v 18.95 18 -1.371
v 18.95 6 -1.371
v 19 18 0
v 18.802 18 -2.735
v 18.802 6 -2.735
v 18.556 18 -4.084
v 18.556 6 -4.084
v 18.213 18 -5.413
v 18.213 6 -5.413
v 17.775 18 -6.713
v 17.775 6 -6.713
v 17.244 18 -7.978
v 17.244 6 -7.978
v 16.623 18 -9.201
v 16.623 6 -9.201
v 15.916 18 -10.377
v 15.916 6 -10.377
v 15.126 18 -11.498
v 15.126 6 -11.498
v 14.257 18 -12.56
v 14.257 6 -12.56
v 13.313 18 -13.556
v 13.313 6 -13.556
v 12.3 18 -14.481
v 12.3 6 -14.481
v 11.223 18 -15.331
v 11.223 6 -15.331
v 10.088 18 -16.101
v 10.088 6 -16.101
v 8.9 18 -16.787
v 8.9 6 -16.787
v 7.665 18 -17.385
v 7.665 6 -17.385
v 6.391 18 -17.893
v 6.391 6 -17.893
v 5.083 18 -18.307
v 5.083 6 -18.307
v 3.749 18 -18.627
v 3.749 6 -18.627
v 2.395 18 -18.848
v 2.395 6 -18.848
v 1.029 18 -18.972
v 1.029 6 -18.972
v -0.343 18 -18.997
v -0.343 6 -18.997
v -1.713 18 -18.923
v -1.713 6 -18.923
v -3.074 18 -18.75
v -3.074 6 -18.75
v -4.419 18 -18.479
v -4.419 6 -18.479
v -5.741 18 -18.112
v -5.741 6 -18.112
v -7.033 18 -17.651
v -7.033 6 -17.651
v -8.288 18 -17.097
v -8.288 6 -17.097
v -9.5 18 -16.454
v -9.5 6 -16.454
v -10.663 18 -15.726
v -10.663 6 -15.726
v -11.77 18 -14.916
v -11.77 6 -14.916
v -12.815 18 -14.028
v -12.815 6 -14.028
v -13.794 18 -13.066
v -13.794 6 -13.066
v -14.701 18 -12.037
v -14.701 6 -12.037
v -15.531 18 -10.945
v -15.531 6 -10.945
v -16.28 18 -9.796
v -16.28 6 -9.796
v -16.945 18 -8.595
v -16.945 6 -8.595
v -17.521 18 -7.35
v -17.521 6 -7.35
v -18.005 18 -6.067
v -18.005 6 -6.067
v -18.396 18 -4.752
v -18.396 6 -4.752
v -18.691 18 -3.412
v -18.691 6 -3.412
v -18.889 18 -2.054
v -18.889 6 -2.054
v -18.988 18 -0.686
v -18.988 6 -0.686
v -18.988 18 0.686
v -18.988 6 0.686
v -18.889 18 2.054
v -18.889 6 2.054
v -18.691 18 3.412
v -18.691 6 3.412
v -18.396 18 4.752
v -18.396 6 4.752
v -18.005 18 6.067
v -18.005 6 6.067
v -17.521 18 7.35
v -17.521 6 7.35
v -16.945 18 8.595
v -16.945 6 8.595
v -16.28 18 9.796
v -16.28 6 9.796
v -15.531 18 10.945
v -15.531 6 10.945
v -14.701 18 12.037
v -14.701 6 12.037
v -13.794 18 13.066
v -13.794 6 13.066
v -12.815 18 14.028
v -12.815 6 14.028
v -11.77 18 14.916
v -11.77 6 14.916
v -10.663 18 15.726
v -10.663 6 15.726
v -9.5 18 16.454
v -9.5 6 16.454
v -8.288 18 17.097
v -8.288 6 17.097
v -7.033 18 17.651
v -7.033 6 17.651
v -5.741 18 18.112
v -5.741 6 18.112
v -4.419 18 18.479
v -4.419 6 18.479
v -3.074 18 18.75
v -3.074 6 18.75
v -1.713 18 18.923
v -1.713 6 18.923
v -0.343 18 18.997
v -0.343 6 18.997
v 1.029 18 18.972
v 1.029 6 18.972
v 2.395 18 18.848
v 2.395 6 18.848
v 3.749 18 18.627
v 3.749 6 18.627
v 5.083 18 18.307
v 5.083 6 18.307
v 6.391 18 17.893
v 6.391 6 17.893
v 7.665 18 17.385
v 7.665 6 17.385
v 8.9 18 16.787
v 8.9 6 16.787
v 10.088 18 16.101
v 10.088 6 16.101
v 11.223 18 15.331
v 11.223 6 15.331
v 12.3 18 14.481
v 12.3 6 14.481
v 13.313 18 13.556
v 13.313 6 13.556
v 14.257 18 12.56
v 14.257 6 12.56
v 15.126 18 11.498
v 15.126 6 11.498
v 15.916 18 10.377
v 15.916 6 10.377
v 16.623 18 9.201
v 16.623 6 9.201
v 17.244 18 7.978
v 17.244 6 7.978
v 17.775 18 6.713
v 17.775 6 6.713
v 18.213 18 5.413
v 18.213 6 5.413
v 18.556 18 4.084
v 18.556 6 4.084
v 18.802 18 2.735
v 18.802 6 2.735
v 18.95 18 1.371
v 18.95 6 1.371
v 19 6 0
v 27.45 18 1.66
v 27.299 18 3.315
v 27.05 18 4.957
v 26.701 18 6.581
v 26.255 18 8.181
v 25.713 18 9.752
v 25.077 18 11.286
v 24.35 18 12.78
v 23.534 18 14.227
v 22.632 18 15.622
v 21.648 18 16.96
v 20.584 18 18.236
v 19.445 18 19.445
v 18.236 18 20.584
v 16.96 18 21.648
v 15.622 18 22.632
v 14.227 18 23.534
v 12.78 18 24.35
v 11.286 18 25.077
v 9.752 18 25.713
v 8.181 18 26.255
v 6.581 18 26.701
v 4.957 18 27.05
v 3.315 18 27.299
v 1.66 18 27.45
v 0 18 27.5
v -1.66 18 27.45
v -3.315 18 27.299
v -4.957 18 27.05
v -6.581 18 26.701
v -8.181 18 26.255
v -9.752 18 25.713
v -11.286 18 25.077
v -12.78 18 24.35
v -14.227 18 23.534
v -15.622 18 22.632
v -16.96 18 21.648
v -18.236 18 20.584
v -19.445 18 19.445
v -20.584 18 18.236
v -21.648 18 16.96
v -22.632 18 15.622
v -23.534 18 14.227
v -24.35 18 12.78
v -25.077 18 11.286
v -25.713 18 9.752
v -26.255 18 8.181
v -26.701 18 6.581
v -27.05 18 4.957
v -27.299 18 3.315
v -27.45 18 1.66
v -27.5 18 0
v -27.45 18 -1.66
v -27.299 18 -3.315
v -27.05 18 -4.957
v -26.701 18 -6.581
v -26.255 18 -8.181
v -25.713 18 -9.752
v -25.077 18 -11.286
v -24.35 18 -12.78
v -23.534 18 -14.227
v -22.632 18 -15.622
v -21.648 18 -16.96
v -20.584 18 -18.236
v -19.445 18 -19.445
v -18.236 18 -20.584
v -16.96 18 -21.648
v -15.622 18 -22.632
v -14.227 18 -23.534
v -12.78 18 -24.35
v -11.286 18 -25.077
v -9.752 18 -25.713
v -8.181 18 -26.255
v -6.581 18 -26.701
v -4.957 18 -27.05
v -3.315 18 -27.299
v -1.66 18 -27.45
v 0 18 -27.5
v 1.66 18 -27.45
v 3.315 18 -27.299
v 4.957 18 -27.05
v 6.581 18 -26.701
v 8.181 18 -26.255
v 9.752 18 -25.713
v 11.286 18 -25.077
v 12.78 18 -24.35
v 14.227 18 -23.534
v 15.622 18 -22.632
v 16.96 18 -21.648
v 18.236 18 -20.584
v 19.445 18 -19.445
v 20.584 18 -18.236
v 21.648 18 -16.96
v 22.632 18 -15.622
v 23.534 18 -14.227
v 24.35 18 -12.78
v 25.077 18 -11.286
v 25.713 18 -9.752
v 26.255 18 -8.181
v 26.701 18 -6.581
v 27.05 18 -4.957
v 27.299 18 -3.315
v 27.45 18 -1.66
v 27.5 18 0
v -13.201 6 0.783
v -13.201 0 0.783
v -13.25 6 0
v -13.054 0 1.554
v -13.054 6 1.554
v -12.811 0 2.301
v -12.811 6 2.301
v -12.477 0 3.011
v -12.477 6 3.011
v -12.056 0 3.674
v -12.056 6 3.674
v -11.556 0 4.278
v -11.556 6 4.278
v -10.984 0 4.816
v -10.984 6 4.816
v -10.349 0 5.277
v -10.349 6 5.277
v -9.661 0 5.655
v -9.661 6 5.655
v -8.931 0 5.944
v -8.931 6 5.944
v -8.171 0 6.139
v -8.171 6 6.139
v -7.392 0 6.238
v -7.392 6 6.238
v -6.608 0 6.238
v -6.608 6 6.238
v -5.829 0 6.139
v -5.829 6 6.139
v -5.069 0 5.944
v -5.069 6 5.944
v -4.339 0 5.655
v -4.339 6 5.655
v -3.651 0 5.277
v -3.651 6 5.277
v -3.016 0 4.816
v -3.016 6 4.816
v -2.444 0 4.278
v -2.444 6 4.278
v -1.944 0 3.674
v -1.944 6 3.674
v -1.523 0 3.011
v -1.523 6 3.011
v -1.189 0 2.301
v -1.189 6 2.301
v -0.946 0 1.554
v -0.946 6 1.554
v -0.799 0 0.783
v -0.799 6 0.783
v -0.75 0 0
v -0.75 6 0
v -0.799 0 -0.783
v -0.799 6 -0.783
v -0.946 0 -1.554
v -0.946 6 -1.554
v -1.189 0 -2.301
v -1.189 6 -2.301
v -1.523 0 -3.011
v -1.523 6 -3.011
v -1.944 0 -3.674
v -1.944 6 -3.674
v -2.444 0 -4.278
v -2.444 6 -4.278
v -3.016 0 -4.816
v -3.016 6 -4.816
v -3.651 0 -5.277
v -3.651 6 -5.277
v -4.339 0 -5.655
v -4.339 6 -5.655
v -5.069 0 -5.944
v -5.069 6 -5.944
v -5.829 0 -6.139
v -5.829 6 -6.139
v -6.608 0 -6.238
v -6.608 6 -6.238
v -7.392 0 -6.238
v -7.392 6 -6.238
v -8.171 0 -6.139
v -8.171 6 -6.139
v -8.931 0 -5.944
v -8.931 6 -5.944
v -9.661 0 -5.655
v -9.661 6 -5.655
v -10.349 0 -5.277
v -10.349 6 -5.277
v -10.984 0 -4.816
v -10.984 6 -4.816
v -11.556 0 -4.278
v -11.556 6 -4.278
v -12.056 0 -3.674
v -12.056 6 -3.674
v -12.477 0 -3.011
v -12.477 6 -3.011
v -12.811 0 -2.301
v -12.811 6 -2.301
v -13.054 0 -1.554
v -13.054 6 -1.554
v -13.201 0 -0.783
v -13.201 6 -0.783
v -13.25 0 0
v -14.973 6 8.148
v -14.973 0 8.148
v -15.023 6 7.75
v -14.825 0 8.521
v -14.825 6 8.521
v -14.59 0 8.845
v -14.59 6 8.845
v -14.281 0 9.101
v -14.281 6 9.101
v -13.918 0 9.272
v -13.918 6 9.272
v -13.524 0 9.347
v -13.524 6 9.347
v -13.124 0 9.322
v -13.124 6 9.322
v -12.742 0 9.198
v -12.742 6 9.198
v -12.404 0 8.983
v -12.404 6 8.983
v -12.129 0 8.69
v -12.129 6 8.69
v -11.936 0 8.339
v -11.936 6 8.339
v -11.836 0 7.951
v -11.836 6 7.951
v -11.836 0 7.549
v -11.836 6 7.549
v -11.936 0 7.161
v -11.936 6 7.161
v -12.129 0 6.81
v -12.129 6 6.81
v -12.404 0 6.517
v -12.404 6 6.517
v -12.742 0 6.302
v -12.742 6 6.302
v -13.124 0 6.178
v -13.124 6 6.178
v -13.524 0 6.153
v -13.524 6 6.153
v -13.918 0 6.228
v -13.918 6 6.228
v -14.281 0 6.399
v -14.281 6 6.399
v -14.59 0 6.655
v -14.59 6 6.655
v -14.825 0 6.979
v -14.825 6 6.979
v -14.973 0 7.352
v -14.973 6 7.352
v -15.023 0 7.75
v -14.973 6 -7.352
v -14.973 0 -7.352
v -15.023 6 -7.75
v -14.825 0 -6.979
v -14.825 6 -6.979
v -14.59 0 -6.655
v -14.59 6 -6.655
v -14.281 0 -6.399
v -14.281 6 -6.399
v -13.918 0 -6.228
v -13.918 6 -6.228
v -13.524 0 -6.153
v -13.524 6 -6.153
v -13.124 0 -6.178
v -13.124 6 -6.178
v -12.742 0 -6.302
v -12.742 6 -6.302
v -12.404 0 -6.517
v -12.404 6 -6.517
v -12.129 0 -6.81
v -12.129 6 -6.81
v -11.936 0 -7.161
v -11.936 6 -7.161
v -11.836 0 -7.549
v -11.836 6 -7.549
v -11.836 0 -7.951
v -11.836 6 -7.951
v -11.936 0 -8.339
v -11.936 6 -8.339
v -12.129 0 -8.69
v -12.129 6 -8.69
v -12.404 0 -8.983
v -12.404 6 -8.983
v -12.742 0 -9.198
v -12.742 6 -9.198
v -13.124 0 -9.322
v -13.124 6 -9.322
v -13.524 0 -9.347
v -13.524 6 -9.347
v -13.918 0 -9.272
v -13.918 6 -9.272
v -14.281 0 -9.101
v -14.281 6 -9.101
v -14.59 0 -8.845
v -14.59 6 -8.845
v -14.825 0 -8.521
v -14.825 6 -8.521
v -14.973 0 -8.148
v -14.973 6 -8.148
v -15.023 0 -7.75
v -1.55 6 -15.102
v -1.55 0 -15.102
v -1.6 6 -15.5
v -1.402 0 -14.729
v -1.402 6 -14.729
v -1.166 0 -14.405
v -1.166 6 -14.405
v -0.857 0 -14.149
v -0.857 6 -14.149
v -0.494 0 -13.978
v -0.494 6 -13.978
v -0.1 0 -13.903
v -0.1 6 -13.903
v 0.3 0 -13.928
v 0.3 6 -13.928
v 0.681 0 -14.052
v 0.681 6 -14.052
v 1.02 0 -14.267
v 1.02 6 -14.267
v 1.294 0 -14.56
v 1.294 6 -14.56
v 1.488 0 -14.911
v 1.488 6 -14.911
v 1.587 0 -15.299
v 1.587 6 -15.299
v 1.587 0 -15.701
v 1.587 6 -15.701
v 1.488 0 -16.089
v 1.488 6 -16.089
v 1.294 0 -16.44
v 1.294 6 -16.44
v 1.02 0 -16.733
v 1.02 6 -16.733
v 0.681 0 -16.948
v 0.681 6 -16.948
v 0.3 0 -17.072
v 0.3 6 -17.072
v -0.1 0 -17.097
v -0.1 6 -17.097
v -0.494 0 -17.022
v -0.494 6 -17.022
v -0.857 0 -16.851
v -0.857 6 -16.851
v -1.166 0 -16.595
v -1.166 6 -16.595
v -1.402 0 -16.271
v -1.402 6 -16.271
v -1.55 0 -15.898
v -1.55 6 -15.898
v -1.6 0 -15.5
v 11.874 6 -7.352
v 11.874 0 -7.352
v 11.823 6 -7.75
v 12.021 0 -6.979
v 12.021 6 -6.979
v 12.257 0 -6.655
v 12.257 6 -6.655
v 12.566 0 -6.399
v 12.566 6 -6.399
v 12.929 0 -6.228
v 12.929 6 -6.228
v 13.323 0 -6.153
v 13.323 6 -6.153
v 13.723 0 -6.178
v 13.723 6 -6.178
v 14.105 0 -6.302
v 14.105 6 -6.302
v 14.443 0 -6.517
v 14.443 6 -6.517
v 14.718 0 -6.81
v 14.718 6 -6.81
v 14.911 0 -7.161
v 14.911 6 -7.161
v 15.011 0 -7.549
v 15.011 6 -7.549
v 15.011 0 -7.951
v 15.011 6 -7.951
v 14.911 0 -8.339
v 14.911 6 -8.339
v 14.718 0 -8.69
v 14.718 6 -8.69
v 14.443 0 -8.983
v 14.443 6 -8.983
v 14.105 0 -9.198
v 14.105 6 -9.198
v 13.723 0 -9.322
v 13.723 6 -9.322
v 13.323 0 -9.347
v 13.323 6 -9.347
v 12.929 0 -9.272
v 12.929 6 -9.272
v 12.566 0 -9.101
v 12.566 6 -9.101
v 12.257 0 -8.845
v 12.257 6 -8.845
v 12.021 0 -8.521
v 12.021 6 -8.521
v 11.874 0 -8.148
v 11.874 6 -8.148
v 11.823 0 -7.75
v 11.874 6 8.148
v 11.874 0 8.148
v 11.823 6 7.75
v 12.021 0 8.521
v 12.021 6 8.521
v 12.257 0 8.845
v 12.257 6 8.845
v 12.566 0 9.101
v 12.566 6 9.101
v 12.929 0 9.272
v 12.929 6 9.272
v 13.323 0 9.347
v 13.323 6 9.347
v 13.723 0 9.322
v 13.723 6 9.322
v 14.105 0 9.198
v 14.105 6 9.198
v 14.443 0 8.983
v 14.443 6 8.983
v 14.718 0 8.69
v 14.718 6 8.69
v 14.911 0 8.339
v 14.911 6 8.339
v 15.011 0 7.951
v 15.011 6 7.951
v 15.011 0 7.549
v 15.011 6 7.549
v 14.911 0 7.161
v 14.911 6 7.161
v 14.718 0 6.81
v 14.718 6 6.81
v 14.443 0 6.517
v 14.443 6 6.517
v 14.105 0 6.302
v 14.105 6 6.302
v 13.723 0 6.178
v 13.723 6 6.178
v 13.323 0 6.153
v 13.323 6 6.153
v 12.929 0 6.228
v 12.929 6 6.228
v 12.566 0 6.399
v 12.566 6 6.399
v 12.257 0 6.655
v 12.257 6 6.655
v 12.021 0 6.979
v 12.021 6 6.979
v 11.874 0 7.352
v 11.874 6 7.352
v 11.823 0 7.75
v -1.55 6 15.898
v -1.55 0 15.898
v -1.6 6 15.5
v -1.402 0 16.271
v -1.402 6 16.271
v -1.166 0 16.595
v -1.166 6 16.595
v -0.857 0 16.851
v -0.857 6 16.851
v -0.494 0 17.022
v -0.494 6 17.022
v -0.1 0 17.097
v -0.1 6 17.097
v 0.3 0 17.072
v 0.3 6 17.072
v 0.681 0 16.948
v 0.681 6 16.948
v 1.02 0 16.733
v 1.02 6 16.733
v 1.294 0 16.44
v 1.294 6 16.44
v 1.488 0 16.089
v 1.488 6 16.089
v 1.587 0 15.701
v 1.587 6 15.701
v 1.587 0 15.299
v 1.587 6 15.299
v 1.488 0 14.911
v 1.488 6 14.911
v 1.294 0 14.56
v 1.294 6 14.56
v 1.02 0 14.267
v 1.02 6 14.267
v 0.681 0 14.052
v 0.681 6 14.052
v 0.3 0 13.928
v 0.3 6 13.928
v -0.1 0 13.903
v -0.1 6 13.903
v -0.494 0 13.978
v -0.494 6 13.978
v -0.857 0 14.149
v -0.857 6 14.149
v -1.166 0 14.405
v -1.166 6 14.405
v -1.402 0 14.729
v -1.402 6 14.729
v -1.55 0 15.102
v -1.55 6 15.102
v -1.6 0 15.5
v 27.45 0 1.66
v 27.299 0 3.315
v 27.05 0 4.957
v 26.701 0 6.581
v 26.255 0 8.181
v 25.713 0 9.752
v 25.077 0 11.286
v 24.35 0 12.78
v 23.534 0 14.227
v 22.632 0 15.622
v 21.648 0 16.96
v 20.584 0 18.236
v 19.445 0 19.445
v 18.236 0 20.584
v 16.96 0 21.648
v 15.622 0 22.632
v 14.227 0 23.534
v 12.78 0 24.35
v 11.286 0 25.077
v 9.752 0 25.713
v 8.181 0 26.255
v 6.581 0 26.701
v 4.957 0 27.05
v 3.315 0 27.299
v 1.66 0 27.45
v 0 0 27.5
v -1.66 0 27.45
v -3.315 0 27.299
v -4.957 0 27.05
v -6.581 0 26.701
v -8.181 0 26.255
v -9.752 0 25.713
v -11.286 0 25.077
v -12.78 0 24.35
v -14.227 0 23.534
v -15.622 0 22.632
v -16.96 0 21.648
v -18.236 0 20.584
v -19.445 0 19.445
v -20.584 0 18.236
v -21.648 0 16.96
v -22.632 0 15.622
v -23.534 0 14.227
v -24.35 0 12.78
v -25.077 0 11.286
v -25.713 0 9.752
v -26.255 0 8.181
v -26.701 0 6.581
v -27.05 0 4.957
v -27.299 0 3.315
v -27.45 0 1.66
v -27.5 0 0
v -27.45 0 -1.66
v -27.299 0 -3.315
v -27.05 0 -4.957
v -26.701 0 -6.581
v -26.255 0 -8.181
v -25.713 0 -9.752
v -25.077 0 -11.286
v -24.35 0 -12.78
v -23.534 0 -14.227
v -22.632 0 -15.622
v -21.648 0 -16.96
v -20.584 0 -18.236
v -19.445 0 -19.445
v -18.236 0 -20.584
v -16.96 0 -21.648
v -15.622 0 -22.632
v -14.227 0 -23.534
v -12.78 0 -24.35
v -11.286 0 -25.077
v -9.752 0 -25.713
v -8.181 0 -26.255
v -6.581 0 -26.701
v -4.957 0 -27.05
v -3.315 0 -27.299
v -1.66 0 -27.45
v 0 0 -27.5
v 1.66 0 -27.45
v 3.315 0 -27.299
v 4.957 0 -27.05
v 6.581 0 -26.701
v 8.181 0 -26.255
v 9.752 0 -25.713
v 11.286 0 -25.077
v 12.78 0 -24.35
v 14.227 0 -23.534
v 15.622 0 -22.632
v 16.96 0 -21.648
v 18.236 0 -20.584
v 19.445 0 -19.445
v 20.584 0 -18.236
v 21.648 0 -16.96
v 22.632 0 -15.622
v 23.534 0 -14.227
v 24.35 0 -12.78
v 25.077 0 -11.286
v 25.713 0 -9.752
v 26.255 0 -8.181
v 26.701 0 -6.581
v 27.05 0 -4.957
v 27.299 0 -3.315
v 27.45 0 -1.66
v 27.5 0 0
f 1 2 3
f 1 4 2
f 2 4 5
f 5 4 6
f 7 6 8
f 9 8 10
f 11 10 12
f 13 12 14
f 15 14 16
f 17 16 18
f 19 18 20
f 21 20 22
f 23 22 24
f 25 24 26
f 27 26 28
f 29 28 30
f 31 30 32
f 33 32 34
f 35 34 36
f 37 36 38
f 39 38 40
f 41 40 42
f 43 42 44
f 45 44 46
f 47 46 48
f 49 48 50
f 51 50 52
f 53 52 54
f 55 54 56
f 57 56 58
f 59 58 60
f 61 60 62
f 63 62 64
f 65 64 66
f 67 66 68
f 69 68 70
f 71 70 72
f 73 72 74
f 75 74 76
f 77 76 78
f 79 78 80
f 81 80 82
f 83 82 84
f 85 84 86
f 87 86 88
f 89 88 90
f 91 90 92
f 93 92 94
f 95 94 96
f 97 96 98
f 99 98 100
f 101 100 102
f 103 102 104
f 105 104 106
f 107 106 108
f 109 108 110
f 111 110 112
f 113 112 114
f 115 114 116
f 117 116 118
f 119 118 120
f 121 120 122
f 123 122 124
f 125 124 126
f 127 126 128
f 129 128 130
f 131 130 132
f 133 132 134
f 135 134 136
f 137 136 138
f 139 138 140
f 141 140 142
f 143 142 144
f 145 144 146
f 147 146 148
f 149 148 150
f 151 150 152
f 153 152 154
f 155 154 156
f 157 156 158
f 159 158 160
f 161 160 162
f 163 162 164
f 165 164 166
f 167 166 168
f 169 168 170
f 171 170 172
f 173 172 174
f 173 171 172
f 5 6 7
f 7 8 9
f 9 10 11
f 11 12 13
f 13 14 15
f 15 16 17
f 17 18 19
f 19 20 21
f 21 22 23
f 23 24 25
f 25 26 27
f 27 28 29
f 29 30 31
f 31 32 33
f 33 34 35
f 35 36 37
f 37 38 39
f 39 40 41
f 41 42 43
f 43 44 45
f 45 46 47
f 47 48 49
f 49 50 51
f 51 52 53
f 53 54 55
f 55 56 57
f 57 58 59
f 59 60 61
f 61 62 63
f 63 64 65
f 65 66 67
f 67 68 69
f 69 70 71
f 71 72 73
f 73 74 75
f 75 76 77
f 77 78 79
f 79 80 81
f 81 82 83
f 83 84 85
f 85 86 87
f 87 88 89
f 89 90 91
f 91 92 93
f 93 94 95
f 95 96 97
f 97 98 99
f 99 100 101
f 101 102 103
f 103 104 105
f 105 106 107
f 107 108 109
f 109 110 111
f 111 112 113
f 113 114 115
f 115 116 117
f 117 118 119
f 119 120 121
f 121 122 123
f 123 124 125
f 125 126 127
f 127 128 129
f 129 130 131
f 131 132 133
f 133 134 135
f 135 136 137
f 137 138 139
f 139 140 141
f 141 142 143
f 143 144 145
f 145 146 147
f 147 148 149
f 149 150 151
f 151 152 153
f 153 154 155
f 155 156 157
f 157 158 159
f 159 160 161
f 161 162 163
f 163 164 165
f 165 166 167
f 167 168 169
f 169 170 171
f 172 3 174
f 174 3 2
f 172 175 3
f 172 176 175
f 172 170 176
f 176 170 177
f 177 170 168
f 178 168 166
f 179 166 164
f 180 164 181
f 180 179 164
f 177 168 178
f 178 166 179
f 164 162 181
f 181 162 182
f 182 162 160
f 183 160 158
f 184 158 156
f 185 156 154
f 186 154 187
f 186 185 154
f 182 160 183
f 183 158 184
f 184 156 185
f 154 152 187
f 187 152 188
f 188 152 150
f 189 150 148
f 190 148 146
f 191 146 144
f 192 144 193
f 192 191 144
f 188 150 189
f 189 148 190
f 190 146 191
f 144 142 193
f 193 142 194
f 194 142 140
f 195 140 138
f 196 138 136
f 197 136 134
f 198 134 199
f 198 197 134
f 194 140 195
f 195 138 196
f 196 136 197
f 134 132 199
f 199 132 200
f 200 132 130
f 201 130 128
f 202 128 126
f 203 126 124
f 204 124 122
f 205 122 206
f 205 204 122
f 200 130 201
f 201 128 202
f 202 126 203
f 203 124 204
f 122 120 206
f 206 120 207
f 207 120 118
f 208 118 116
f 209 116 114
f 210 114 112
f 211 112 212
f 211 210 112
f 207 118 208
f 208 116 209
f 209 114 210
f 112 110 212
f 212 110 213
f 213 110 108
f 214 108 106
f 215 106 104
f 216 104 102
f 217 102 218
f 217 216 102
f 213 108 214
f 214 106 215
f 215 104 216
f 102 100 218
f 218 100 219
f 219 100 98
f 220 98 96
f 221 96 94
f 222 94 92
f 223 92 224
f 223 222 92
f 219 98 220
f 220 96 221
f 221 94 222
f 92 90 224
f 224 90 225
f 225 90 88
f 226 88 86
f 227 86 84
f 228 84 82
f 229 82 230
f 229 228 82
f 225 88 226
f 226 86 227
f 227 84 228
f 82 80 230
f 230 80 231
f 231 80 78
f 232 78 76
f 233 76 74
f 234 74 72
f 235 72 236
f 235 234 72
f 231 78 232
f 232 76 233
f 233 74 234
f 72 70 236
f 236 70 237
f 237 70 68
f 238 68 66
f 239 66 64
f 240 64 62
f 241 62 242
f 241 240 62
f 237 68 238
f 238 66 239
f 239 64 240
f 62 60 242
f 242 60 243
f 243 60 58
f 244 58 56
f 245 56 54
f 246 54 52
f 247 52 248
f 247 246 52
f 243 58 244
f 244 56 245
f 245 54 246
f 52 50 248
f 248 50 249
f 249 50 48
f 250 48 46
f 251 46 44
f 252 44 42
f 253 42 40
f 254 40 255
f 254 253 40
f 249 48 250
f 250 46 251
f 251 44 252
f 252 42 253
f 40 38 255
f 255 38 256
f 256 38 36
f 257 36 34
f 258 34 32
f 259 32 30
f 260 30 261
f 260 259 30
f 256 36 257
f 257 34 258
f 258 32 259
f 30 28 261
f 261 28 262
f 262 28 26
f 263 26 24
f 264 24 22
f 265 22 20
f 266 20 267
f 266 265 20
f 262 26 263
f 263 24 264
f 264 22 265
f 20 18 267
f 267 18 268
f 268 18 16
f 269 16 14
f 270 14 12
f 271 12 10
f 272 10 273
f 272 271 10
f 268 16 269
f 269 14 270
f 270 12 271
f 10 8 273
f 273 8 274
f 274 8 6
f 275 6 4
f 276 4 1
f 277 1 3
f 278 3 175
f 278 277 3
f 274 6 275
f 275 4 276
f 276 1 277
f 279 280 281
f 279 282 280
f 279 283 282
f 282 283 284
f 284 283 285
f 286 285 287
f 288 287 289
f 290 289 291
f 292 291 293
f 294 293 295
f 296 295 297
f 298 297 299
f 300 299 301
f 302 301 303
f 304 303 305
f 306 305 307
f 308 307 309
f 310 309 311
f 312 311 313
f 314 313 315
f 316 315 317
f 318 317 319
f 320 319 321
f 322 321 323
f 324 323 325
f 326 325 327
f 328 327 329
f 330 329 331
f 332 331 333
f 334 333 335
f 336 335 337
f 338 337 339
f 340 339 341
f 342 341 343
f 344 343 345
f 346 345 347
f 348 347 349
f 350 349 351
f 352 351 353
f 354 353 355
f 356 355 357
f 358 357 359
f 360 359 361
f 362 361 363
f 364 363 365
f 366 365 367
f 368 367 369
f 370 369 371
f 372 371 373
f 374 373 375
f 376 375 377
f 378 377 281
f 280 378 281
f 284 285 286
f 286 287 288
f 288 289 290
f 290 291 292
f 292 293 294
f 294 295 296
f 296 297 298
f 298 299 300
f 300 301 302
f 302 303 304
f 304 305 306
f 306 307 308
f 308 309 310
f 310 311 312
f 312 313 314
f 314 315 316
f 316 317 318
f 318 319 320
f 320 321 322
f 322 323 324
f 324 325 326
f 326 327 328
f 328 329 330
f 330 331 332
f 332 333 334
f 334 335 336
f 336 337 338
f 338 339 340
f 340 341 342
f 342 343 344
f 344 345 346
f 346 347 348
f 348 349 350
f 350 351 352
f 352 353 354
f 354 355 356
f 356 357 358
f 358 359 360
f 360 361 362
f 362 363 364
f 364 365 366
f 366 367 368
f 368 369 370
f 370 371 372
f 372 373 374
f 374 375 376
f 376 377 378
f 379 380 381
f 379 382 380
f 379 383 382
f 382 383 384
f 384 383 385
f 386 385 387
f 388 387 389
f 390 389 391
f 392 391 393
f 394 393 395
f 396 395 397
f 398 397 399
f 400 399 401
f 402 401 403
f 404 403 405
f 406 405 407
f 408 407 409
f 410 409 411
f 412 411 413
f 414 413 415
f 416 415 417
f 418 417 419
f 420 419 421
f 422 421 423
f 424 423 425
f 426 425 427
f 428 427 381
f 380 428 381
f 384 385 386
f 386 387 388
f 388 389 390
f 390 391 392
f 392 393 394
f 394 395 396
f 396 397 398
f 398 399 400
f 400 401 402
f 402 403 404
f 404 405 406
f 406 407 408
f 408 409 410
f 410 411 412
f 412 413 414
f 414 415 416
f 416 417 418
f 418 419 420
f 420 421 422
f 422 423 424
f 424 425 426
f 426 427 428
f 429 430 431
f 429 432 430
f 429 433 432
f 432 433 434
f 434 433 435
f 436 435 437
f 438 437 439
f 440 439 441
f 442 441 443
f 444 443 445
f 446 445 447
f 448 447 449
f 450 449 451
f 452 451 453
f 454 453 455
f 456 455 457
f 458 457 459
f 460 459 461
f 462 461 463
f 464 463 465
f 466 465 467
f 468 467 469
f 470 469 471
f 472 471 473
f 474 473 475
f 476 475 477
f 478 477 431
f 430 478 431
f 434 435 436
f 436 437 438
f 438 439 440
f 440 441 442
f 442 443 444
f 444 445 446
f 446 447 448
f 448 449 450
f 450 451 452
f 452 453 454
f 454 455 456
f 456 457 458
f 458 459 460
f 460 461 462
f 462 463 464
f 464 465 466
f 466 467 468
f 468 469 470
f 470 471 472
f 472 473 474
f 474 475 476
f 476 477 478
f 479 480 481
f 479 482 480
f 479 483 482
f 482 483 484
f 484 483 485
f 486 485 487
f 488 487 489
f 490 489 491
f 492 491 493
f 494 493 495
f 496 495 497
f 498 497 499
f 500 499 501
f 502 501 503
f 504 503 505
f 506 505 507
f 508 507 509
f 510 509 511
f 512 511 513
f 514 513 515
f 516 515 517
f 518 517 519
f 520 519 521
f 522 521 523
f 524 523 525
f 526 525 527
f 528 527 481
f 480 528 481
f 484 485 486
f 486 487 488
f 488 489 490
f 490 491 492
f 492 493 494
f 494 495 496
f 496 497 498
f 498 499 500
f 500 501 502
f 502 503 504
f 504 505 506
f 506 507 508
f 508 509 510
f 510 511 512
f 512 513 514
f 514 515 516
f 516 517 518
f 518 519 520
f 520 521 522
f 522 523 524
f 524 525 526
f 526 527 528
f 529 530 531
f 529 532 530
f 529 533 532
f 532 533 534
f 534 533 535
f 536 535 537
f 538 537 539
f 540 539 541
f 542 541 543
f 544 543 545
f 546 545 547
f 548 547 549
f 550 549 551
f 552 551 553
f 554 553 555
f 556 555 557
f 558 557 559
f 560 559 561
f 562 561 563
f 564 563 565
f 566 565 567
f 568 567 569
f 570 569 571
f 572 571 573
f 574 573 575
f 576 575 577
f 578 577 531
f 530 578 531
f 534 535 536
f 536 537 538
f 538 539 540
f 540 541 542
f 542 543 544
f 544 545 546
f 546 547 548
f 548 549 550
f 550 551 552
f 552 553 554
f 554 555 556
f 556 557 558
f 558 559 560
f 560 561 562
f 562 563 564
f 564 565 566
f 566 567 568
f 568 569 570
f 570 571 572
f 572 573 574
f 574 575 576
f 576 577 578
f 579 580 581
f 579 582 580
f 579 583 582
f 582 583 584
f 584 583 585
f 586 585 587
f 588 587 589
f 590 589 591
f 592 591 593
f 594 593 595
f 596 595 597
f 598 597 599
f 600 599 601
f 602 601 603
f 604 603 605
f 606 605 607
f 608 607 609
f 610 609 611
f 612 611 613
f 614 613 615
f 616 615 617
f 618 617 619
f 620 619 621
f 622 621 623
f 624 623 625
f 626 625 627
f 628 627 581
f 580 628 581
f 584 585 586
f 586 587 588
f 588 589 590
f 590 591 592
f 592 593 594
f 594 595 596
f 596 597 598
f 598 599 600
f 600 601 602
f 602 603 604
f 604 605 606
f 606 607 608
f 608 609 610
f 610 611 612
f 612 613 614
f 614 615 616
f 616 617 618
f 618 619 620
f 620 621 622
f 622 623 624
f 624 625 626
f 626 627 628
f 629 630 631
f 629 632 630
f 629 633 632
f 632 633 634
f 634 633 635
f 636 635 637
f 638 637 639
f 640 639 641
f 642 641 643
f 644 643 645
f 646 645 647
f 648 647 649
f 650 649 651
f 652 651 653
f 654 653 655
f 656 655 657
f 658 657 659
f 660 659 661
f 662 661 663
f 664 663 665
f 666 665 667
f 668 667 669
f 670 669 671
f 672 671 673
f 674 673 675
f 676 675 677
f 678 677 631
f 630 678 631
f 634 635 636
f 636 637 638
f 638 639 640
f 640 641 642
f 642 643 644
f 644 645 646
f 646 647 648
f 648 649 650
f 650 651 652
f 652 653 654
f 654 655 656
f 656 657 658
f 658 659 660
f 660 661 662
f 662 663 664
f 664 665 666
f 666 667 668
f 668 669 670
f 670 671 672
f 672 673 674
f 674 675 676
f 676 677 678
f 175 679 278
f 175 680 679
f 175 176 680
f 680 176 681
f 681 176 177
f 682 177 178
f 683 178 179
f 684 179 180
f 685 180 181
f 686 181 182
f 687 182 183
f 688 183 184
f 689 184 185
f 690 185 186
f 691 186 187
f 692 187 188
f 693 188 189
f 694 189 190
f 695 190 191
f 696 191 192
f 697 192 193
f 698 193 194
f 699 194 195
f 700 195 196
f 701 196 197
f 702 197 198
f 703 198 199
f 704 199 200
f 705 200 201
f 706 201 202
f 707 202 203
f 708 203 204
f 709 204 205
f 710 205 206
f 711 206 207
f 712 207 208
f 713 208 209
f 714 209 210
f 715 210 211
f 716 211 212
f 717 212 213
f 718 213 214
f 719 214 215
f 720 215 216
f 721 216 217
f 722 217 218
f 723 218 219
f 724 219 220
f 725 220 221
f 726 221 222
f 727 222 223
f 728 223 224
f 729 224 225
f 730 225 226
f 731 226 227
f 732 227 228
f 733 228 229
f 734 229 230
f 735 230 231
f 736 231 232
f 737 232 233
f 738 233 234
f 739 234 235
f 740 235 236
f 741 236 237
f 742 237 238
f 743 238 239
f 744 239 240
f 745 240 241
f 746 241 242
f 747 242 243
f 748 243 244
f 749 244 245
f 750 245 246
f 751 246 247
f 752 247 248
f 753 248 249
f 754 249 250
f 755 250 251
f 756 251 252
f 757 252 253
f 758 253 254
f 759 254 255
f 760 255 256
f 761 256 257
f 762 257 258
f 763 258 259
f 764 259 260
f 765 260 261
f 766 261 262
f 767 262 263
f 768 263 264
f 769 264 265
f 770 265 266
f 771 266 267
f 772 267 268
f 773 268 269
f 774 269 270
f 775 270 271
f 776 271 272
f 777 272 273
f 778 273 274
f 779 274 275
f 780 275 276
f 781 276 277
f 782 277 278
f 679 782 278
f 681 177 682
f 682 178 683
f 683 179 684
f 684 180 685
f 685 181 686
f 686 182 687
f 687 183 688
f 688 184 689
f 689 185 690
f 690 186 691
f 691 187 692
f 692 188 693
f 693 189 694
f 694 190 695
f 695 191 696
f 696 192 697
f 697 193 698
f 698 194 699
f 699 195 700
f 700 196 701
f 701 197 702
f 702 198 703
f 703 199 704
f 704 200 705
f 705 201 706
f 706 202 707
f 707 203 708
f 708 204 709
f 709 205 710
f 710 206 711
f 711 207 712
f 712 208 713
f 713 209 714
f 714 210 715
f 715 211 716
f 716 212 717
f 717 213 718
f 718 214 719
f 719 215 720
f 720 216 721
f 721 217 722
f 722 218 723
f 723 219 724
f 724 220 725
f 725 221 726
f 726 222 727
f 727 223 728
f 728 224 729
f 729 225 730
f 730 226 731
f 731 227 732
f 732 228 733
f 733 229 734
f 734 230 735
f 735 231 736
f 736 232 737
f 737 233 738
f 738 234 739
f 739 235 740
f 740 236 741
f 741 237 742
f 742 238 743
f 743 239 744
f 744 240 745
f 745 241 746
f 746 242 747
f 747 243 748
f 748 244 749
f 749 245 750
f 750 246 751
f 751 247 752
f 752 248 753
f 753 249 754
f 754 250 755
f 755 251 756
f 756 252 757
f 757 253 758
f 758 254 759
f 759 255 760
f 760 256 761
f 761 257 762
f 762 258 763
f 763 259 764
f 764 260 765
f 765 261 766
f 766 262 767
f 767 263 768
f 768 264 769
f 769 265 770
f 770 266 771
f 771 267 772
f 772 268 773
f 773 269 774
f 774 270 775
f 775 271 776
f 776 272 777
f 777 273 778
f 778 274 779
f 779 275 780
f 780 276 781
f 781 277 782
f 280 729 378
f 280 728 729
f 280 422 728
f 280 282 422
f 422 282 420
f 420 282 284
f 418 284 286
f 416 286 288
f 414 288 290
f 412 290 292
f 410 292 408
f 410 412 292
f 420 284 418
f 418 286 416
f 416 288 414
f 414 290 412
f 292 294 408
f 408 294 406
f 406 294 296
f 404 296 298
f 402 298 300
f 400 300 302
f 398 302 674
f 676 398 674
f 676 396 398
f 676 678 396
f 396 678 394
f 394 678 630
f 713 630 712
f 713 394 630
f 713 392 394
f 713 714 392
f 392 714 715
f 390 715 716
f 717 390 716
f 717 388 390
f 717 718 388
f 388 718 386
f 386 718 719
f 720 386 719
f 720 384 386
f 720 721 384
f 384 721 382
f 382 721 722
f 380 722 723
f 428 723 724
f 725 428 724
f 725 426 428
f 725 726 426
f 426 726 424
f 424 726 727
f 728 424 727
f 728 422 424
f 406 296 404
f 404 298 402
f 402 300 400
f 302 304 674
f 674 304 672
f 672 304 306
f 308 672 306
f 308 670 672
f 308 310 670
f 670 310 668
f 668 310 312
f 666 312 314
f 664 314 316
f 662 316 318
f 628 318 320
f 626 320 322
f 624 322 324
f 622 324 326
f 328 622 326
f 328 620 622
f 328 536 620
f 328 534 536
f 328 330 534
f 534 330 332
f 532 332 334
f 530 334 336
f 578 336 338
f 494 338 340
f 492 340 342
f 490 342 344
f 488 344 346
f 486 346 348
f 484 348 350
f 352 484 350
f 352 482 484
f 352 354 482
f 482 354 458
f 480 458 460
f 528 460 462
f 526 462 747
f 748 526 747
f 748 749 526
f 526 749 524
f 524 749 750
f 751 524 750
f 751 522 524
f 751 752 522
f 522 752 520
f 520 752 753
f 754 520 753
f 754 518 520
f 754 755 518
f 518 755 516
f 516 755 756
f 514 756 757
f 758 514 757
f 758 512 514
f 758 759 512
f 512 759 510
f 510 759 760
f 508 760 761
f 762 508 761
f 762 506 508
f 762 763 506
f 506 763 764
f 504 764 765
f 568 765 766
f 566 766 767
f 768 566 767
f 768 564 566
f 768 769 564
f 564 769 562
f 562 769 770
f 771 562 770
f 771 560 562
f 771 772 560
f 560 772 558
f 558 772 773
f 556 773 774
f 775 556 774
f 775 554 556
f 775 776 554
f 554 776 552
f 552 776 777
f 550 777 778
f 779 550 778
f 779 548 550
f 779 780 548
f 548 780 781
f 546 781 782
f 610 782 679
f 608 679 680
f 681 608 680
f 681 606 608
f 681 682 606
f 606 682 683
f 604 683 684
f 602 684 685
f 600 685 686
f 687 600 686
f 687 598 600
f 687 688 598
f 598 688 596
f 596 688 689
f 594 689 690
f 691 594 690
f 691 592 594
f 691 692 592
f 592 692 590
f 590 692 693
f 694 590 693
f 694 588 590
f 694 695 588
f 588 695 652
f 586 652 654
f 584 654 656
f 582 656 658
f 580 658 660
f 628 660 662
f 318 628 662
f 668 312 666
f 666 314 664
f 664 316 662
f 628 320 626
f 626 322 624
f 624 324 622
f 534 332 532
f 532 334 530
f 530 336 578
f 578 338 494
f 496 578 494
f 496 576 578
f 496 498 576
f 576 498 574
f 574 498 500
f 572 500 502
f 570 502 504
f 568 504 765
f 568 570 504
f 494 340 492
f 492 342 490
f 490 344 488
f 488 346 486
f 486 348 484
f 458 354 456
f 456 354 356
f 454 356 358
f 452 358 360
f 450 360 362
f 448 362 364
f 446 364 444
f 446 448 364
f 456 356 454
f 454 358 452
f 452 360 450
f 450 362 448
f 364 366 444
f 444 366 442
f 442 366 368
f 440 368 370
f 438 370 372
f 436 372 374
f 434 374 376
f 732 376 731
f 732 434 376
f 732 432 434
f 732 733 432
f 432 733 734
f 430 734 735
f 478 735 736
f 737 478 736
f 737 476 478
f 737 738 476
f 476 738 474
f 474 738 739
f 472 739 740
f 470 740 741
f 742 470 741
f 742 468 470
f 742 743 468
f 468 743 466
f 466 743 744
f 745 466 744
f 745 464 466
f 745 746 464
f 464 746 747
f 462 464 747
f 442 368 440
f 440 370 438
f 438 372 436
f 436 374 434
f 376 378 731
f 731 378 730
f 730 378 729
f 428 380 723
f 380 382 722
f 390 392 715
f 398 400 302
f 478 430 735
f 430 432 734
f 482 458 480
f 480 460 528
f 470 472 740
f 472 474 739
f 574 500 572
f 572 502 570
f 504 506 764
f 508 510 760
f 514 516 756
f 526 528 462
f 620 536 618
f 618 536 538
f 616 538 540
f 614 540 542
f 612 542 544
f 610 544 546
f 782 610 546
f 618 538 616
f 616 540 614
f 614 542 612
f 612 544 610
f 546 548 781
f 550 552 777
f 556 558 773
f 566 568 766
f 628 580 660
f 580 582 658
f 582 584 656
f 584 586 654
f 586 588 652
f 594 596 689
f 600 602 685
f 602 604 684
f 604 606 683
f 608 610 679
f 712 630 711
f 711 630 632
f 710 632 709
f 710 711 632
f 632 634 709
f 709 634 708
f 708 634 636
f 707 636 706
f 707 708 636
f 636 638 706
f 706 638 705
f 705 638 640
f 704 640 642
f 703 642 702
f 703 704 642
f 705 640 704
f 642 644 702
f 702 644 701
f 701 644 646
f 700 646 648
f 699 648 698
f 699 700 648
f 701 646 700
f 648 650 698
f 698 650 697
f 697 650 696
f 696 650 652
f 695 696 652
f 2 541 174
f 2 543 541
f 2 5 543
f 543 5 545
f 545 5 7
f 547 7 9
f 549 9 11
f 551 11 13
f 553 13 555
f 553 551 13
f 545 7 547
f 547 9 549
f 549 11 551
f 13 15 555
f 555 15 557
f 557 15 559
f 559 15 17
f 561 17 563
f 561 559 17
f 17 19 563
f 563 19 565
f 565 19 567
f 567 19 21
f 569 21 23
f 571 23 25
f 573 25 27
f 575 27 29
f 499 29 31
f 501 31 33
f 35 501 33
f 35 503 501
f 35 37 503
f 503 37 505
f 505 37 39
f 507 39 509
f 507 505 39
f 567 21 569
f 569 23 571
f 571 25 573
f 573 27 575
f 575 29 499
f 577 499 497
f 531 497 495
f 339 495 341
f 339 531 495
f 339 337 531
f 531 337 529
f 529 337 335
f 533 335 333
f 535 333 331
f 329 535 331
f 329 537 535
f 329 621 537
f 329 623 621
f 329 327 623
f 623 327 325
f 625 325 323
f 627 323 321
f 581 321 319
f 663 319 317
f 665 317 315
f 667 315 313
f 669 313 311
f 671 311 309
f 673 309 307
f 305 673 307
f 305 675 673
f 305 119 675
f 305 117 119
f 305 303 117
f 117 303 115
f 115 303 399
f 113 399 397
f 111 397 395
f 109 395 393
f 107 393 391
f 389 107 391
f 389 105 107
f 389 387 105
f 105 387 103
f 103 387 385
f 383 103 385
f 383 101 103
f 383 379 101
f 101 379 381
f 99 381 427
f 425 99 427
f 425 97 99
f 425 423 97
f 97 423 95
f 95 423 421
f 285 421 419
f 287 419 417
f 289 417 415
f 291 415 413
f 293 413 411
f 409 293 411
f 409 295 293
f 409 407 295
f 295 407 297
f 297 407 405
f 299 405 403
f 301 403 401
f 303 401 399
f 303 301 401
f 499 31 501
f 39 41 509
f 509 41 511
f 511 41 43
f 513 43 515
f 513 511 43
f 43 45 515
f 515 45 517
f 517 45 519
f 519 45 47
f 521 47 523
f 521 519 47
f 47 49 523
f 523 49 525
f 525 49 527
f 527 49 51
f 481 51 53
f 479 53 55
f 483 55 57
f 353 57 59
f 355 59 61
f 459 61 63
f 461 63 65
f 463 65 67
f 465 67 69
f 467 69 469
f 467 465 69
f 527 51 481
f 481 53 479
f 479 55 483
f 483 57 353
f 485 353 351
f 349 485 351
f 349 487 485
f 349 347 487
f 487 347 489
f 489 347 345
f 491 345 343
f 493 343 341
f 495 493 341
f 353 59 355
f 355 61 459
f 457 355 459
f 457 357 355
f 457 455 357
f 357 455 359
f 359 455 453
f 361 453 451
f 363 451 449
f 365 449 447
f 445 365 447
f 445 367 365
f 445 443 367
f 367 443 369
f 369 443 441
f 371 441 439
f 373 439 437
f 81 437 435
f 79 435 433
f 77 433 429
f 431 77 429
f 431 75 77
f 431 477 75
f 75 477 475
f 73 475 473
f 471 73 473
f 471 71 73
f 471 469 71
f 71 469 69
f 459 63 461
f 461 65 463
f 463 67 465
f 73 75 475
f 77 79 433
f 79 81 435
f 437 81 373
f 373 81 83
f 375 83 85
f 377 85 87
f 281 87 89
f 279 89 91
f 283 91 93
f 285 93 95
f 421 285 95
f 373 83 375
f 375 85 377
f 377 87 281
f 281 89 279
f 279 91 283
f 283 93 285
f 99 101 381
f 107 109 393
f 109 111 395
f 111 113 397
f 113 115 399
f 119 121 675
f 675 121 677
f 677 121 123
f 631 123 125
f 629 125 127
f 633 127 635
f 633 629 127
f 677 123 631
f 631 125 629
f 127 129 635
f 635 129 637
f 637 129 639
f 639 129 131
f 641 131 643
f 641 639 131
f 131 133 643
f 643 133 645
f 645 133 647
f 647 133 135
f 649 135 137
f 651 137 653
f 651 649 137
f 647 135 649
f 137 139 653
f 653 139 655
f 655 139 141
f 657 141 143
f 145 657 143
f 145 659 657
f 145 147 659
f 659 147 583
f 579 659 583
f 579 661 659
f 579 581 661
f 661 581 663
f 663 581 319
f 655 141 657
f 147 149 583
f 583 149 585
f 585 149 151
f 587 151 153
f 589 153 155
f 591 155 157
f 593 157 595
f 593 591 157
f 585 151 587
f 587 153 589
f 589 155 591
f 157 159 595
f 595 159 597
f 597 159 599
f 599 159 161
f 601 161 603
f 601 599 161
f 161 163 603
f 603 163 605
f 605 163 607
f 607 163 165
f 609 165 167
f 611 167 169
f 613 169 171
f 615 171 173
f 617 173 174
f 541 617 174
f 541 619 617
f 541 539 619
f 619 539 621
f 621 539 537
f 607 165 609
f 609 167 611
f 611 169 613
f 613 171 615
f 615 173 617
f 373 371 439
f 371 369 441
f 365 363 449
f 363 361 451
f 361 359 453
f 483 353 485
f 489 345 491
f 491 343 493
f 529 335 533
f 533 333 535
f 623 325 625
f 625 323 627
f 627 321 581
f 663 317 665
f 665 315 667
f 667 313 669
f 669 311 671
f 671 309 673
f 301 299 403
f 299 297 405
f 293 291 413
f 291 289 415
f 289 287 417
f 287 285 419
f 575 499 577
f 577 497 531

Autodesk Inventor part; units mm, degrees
ref_plane "YZ Plane" through (0, 0, 0) normal (1, 0, 0) x (0, 1, 0)
ref_plane "XZ Plane" through (0, 0, 0) normal (0, 1, 0) x (-1, 0, 0)
ref_plane "XY Plane" through (0, 0, 0) normal (0, 0, 1) x (1, 0, 0)
sketch "Sketch1" plane through (0, 0, 0) normal (0, 1, 0) x (-1, 0, 0)
  circle A0 centre (7, 0) radius 6.25
  circle A1 centre (0, 15.5) radius 1.6
  circle A2 centre (-13.4234, 7.75) radius 1.6
  circle A3 centre (-13.4234, -7.75) radius 1.6
  circle A4 centre (0, -15.5) radius 1.6
  circle A5 centre (13.4234, -7.75) radius 1.6
  circle A6 centre (13.4234, 7.75) radius 1.6
  circle A7 centre (0, 0) radius 27.5
  dimension "d0" = 7
  dimension "d1" = 12.5
  dimension "d2" = 3.2
  dimension "d3" = 15.5
  dimension "d6" = 360
  dimension "d8" = 55
extrude "Extrusion1" add sketch "Sketch1" along normal blind 6
sketch "Sketch2" plane through (0, 6, 0) normal (0, 1, 0) x (1, 0, 0)
  circle A0 centre (0, 0) radius 19
  circle A1 centre (0, 0) radius 27.5
  dimension "d11" = 38
extrude "Extrusion2" add sketch "Sketch2" along normal blind 12
properties part number "motor_holder_test"
